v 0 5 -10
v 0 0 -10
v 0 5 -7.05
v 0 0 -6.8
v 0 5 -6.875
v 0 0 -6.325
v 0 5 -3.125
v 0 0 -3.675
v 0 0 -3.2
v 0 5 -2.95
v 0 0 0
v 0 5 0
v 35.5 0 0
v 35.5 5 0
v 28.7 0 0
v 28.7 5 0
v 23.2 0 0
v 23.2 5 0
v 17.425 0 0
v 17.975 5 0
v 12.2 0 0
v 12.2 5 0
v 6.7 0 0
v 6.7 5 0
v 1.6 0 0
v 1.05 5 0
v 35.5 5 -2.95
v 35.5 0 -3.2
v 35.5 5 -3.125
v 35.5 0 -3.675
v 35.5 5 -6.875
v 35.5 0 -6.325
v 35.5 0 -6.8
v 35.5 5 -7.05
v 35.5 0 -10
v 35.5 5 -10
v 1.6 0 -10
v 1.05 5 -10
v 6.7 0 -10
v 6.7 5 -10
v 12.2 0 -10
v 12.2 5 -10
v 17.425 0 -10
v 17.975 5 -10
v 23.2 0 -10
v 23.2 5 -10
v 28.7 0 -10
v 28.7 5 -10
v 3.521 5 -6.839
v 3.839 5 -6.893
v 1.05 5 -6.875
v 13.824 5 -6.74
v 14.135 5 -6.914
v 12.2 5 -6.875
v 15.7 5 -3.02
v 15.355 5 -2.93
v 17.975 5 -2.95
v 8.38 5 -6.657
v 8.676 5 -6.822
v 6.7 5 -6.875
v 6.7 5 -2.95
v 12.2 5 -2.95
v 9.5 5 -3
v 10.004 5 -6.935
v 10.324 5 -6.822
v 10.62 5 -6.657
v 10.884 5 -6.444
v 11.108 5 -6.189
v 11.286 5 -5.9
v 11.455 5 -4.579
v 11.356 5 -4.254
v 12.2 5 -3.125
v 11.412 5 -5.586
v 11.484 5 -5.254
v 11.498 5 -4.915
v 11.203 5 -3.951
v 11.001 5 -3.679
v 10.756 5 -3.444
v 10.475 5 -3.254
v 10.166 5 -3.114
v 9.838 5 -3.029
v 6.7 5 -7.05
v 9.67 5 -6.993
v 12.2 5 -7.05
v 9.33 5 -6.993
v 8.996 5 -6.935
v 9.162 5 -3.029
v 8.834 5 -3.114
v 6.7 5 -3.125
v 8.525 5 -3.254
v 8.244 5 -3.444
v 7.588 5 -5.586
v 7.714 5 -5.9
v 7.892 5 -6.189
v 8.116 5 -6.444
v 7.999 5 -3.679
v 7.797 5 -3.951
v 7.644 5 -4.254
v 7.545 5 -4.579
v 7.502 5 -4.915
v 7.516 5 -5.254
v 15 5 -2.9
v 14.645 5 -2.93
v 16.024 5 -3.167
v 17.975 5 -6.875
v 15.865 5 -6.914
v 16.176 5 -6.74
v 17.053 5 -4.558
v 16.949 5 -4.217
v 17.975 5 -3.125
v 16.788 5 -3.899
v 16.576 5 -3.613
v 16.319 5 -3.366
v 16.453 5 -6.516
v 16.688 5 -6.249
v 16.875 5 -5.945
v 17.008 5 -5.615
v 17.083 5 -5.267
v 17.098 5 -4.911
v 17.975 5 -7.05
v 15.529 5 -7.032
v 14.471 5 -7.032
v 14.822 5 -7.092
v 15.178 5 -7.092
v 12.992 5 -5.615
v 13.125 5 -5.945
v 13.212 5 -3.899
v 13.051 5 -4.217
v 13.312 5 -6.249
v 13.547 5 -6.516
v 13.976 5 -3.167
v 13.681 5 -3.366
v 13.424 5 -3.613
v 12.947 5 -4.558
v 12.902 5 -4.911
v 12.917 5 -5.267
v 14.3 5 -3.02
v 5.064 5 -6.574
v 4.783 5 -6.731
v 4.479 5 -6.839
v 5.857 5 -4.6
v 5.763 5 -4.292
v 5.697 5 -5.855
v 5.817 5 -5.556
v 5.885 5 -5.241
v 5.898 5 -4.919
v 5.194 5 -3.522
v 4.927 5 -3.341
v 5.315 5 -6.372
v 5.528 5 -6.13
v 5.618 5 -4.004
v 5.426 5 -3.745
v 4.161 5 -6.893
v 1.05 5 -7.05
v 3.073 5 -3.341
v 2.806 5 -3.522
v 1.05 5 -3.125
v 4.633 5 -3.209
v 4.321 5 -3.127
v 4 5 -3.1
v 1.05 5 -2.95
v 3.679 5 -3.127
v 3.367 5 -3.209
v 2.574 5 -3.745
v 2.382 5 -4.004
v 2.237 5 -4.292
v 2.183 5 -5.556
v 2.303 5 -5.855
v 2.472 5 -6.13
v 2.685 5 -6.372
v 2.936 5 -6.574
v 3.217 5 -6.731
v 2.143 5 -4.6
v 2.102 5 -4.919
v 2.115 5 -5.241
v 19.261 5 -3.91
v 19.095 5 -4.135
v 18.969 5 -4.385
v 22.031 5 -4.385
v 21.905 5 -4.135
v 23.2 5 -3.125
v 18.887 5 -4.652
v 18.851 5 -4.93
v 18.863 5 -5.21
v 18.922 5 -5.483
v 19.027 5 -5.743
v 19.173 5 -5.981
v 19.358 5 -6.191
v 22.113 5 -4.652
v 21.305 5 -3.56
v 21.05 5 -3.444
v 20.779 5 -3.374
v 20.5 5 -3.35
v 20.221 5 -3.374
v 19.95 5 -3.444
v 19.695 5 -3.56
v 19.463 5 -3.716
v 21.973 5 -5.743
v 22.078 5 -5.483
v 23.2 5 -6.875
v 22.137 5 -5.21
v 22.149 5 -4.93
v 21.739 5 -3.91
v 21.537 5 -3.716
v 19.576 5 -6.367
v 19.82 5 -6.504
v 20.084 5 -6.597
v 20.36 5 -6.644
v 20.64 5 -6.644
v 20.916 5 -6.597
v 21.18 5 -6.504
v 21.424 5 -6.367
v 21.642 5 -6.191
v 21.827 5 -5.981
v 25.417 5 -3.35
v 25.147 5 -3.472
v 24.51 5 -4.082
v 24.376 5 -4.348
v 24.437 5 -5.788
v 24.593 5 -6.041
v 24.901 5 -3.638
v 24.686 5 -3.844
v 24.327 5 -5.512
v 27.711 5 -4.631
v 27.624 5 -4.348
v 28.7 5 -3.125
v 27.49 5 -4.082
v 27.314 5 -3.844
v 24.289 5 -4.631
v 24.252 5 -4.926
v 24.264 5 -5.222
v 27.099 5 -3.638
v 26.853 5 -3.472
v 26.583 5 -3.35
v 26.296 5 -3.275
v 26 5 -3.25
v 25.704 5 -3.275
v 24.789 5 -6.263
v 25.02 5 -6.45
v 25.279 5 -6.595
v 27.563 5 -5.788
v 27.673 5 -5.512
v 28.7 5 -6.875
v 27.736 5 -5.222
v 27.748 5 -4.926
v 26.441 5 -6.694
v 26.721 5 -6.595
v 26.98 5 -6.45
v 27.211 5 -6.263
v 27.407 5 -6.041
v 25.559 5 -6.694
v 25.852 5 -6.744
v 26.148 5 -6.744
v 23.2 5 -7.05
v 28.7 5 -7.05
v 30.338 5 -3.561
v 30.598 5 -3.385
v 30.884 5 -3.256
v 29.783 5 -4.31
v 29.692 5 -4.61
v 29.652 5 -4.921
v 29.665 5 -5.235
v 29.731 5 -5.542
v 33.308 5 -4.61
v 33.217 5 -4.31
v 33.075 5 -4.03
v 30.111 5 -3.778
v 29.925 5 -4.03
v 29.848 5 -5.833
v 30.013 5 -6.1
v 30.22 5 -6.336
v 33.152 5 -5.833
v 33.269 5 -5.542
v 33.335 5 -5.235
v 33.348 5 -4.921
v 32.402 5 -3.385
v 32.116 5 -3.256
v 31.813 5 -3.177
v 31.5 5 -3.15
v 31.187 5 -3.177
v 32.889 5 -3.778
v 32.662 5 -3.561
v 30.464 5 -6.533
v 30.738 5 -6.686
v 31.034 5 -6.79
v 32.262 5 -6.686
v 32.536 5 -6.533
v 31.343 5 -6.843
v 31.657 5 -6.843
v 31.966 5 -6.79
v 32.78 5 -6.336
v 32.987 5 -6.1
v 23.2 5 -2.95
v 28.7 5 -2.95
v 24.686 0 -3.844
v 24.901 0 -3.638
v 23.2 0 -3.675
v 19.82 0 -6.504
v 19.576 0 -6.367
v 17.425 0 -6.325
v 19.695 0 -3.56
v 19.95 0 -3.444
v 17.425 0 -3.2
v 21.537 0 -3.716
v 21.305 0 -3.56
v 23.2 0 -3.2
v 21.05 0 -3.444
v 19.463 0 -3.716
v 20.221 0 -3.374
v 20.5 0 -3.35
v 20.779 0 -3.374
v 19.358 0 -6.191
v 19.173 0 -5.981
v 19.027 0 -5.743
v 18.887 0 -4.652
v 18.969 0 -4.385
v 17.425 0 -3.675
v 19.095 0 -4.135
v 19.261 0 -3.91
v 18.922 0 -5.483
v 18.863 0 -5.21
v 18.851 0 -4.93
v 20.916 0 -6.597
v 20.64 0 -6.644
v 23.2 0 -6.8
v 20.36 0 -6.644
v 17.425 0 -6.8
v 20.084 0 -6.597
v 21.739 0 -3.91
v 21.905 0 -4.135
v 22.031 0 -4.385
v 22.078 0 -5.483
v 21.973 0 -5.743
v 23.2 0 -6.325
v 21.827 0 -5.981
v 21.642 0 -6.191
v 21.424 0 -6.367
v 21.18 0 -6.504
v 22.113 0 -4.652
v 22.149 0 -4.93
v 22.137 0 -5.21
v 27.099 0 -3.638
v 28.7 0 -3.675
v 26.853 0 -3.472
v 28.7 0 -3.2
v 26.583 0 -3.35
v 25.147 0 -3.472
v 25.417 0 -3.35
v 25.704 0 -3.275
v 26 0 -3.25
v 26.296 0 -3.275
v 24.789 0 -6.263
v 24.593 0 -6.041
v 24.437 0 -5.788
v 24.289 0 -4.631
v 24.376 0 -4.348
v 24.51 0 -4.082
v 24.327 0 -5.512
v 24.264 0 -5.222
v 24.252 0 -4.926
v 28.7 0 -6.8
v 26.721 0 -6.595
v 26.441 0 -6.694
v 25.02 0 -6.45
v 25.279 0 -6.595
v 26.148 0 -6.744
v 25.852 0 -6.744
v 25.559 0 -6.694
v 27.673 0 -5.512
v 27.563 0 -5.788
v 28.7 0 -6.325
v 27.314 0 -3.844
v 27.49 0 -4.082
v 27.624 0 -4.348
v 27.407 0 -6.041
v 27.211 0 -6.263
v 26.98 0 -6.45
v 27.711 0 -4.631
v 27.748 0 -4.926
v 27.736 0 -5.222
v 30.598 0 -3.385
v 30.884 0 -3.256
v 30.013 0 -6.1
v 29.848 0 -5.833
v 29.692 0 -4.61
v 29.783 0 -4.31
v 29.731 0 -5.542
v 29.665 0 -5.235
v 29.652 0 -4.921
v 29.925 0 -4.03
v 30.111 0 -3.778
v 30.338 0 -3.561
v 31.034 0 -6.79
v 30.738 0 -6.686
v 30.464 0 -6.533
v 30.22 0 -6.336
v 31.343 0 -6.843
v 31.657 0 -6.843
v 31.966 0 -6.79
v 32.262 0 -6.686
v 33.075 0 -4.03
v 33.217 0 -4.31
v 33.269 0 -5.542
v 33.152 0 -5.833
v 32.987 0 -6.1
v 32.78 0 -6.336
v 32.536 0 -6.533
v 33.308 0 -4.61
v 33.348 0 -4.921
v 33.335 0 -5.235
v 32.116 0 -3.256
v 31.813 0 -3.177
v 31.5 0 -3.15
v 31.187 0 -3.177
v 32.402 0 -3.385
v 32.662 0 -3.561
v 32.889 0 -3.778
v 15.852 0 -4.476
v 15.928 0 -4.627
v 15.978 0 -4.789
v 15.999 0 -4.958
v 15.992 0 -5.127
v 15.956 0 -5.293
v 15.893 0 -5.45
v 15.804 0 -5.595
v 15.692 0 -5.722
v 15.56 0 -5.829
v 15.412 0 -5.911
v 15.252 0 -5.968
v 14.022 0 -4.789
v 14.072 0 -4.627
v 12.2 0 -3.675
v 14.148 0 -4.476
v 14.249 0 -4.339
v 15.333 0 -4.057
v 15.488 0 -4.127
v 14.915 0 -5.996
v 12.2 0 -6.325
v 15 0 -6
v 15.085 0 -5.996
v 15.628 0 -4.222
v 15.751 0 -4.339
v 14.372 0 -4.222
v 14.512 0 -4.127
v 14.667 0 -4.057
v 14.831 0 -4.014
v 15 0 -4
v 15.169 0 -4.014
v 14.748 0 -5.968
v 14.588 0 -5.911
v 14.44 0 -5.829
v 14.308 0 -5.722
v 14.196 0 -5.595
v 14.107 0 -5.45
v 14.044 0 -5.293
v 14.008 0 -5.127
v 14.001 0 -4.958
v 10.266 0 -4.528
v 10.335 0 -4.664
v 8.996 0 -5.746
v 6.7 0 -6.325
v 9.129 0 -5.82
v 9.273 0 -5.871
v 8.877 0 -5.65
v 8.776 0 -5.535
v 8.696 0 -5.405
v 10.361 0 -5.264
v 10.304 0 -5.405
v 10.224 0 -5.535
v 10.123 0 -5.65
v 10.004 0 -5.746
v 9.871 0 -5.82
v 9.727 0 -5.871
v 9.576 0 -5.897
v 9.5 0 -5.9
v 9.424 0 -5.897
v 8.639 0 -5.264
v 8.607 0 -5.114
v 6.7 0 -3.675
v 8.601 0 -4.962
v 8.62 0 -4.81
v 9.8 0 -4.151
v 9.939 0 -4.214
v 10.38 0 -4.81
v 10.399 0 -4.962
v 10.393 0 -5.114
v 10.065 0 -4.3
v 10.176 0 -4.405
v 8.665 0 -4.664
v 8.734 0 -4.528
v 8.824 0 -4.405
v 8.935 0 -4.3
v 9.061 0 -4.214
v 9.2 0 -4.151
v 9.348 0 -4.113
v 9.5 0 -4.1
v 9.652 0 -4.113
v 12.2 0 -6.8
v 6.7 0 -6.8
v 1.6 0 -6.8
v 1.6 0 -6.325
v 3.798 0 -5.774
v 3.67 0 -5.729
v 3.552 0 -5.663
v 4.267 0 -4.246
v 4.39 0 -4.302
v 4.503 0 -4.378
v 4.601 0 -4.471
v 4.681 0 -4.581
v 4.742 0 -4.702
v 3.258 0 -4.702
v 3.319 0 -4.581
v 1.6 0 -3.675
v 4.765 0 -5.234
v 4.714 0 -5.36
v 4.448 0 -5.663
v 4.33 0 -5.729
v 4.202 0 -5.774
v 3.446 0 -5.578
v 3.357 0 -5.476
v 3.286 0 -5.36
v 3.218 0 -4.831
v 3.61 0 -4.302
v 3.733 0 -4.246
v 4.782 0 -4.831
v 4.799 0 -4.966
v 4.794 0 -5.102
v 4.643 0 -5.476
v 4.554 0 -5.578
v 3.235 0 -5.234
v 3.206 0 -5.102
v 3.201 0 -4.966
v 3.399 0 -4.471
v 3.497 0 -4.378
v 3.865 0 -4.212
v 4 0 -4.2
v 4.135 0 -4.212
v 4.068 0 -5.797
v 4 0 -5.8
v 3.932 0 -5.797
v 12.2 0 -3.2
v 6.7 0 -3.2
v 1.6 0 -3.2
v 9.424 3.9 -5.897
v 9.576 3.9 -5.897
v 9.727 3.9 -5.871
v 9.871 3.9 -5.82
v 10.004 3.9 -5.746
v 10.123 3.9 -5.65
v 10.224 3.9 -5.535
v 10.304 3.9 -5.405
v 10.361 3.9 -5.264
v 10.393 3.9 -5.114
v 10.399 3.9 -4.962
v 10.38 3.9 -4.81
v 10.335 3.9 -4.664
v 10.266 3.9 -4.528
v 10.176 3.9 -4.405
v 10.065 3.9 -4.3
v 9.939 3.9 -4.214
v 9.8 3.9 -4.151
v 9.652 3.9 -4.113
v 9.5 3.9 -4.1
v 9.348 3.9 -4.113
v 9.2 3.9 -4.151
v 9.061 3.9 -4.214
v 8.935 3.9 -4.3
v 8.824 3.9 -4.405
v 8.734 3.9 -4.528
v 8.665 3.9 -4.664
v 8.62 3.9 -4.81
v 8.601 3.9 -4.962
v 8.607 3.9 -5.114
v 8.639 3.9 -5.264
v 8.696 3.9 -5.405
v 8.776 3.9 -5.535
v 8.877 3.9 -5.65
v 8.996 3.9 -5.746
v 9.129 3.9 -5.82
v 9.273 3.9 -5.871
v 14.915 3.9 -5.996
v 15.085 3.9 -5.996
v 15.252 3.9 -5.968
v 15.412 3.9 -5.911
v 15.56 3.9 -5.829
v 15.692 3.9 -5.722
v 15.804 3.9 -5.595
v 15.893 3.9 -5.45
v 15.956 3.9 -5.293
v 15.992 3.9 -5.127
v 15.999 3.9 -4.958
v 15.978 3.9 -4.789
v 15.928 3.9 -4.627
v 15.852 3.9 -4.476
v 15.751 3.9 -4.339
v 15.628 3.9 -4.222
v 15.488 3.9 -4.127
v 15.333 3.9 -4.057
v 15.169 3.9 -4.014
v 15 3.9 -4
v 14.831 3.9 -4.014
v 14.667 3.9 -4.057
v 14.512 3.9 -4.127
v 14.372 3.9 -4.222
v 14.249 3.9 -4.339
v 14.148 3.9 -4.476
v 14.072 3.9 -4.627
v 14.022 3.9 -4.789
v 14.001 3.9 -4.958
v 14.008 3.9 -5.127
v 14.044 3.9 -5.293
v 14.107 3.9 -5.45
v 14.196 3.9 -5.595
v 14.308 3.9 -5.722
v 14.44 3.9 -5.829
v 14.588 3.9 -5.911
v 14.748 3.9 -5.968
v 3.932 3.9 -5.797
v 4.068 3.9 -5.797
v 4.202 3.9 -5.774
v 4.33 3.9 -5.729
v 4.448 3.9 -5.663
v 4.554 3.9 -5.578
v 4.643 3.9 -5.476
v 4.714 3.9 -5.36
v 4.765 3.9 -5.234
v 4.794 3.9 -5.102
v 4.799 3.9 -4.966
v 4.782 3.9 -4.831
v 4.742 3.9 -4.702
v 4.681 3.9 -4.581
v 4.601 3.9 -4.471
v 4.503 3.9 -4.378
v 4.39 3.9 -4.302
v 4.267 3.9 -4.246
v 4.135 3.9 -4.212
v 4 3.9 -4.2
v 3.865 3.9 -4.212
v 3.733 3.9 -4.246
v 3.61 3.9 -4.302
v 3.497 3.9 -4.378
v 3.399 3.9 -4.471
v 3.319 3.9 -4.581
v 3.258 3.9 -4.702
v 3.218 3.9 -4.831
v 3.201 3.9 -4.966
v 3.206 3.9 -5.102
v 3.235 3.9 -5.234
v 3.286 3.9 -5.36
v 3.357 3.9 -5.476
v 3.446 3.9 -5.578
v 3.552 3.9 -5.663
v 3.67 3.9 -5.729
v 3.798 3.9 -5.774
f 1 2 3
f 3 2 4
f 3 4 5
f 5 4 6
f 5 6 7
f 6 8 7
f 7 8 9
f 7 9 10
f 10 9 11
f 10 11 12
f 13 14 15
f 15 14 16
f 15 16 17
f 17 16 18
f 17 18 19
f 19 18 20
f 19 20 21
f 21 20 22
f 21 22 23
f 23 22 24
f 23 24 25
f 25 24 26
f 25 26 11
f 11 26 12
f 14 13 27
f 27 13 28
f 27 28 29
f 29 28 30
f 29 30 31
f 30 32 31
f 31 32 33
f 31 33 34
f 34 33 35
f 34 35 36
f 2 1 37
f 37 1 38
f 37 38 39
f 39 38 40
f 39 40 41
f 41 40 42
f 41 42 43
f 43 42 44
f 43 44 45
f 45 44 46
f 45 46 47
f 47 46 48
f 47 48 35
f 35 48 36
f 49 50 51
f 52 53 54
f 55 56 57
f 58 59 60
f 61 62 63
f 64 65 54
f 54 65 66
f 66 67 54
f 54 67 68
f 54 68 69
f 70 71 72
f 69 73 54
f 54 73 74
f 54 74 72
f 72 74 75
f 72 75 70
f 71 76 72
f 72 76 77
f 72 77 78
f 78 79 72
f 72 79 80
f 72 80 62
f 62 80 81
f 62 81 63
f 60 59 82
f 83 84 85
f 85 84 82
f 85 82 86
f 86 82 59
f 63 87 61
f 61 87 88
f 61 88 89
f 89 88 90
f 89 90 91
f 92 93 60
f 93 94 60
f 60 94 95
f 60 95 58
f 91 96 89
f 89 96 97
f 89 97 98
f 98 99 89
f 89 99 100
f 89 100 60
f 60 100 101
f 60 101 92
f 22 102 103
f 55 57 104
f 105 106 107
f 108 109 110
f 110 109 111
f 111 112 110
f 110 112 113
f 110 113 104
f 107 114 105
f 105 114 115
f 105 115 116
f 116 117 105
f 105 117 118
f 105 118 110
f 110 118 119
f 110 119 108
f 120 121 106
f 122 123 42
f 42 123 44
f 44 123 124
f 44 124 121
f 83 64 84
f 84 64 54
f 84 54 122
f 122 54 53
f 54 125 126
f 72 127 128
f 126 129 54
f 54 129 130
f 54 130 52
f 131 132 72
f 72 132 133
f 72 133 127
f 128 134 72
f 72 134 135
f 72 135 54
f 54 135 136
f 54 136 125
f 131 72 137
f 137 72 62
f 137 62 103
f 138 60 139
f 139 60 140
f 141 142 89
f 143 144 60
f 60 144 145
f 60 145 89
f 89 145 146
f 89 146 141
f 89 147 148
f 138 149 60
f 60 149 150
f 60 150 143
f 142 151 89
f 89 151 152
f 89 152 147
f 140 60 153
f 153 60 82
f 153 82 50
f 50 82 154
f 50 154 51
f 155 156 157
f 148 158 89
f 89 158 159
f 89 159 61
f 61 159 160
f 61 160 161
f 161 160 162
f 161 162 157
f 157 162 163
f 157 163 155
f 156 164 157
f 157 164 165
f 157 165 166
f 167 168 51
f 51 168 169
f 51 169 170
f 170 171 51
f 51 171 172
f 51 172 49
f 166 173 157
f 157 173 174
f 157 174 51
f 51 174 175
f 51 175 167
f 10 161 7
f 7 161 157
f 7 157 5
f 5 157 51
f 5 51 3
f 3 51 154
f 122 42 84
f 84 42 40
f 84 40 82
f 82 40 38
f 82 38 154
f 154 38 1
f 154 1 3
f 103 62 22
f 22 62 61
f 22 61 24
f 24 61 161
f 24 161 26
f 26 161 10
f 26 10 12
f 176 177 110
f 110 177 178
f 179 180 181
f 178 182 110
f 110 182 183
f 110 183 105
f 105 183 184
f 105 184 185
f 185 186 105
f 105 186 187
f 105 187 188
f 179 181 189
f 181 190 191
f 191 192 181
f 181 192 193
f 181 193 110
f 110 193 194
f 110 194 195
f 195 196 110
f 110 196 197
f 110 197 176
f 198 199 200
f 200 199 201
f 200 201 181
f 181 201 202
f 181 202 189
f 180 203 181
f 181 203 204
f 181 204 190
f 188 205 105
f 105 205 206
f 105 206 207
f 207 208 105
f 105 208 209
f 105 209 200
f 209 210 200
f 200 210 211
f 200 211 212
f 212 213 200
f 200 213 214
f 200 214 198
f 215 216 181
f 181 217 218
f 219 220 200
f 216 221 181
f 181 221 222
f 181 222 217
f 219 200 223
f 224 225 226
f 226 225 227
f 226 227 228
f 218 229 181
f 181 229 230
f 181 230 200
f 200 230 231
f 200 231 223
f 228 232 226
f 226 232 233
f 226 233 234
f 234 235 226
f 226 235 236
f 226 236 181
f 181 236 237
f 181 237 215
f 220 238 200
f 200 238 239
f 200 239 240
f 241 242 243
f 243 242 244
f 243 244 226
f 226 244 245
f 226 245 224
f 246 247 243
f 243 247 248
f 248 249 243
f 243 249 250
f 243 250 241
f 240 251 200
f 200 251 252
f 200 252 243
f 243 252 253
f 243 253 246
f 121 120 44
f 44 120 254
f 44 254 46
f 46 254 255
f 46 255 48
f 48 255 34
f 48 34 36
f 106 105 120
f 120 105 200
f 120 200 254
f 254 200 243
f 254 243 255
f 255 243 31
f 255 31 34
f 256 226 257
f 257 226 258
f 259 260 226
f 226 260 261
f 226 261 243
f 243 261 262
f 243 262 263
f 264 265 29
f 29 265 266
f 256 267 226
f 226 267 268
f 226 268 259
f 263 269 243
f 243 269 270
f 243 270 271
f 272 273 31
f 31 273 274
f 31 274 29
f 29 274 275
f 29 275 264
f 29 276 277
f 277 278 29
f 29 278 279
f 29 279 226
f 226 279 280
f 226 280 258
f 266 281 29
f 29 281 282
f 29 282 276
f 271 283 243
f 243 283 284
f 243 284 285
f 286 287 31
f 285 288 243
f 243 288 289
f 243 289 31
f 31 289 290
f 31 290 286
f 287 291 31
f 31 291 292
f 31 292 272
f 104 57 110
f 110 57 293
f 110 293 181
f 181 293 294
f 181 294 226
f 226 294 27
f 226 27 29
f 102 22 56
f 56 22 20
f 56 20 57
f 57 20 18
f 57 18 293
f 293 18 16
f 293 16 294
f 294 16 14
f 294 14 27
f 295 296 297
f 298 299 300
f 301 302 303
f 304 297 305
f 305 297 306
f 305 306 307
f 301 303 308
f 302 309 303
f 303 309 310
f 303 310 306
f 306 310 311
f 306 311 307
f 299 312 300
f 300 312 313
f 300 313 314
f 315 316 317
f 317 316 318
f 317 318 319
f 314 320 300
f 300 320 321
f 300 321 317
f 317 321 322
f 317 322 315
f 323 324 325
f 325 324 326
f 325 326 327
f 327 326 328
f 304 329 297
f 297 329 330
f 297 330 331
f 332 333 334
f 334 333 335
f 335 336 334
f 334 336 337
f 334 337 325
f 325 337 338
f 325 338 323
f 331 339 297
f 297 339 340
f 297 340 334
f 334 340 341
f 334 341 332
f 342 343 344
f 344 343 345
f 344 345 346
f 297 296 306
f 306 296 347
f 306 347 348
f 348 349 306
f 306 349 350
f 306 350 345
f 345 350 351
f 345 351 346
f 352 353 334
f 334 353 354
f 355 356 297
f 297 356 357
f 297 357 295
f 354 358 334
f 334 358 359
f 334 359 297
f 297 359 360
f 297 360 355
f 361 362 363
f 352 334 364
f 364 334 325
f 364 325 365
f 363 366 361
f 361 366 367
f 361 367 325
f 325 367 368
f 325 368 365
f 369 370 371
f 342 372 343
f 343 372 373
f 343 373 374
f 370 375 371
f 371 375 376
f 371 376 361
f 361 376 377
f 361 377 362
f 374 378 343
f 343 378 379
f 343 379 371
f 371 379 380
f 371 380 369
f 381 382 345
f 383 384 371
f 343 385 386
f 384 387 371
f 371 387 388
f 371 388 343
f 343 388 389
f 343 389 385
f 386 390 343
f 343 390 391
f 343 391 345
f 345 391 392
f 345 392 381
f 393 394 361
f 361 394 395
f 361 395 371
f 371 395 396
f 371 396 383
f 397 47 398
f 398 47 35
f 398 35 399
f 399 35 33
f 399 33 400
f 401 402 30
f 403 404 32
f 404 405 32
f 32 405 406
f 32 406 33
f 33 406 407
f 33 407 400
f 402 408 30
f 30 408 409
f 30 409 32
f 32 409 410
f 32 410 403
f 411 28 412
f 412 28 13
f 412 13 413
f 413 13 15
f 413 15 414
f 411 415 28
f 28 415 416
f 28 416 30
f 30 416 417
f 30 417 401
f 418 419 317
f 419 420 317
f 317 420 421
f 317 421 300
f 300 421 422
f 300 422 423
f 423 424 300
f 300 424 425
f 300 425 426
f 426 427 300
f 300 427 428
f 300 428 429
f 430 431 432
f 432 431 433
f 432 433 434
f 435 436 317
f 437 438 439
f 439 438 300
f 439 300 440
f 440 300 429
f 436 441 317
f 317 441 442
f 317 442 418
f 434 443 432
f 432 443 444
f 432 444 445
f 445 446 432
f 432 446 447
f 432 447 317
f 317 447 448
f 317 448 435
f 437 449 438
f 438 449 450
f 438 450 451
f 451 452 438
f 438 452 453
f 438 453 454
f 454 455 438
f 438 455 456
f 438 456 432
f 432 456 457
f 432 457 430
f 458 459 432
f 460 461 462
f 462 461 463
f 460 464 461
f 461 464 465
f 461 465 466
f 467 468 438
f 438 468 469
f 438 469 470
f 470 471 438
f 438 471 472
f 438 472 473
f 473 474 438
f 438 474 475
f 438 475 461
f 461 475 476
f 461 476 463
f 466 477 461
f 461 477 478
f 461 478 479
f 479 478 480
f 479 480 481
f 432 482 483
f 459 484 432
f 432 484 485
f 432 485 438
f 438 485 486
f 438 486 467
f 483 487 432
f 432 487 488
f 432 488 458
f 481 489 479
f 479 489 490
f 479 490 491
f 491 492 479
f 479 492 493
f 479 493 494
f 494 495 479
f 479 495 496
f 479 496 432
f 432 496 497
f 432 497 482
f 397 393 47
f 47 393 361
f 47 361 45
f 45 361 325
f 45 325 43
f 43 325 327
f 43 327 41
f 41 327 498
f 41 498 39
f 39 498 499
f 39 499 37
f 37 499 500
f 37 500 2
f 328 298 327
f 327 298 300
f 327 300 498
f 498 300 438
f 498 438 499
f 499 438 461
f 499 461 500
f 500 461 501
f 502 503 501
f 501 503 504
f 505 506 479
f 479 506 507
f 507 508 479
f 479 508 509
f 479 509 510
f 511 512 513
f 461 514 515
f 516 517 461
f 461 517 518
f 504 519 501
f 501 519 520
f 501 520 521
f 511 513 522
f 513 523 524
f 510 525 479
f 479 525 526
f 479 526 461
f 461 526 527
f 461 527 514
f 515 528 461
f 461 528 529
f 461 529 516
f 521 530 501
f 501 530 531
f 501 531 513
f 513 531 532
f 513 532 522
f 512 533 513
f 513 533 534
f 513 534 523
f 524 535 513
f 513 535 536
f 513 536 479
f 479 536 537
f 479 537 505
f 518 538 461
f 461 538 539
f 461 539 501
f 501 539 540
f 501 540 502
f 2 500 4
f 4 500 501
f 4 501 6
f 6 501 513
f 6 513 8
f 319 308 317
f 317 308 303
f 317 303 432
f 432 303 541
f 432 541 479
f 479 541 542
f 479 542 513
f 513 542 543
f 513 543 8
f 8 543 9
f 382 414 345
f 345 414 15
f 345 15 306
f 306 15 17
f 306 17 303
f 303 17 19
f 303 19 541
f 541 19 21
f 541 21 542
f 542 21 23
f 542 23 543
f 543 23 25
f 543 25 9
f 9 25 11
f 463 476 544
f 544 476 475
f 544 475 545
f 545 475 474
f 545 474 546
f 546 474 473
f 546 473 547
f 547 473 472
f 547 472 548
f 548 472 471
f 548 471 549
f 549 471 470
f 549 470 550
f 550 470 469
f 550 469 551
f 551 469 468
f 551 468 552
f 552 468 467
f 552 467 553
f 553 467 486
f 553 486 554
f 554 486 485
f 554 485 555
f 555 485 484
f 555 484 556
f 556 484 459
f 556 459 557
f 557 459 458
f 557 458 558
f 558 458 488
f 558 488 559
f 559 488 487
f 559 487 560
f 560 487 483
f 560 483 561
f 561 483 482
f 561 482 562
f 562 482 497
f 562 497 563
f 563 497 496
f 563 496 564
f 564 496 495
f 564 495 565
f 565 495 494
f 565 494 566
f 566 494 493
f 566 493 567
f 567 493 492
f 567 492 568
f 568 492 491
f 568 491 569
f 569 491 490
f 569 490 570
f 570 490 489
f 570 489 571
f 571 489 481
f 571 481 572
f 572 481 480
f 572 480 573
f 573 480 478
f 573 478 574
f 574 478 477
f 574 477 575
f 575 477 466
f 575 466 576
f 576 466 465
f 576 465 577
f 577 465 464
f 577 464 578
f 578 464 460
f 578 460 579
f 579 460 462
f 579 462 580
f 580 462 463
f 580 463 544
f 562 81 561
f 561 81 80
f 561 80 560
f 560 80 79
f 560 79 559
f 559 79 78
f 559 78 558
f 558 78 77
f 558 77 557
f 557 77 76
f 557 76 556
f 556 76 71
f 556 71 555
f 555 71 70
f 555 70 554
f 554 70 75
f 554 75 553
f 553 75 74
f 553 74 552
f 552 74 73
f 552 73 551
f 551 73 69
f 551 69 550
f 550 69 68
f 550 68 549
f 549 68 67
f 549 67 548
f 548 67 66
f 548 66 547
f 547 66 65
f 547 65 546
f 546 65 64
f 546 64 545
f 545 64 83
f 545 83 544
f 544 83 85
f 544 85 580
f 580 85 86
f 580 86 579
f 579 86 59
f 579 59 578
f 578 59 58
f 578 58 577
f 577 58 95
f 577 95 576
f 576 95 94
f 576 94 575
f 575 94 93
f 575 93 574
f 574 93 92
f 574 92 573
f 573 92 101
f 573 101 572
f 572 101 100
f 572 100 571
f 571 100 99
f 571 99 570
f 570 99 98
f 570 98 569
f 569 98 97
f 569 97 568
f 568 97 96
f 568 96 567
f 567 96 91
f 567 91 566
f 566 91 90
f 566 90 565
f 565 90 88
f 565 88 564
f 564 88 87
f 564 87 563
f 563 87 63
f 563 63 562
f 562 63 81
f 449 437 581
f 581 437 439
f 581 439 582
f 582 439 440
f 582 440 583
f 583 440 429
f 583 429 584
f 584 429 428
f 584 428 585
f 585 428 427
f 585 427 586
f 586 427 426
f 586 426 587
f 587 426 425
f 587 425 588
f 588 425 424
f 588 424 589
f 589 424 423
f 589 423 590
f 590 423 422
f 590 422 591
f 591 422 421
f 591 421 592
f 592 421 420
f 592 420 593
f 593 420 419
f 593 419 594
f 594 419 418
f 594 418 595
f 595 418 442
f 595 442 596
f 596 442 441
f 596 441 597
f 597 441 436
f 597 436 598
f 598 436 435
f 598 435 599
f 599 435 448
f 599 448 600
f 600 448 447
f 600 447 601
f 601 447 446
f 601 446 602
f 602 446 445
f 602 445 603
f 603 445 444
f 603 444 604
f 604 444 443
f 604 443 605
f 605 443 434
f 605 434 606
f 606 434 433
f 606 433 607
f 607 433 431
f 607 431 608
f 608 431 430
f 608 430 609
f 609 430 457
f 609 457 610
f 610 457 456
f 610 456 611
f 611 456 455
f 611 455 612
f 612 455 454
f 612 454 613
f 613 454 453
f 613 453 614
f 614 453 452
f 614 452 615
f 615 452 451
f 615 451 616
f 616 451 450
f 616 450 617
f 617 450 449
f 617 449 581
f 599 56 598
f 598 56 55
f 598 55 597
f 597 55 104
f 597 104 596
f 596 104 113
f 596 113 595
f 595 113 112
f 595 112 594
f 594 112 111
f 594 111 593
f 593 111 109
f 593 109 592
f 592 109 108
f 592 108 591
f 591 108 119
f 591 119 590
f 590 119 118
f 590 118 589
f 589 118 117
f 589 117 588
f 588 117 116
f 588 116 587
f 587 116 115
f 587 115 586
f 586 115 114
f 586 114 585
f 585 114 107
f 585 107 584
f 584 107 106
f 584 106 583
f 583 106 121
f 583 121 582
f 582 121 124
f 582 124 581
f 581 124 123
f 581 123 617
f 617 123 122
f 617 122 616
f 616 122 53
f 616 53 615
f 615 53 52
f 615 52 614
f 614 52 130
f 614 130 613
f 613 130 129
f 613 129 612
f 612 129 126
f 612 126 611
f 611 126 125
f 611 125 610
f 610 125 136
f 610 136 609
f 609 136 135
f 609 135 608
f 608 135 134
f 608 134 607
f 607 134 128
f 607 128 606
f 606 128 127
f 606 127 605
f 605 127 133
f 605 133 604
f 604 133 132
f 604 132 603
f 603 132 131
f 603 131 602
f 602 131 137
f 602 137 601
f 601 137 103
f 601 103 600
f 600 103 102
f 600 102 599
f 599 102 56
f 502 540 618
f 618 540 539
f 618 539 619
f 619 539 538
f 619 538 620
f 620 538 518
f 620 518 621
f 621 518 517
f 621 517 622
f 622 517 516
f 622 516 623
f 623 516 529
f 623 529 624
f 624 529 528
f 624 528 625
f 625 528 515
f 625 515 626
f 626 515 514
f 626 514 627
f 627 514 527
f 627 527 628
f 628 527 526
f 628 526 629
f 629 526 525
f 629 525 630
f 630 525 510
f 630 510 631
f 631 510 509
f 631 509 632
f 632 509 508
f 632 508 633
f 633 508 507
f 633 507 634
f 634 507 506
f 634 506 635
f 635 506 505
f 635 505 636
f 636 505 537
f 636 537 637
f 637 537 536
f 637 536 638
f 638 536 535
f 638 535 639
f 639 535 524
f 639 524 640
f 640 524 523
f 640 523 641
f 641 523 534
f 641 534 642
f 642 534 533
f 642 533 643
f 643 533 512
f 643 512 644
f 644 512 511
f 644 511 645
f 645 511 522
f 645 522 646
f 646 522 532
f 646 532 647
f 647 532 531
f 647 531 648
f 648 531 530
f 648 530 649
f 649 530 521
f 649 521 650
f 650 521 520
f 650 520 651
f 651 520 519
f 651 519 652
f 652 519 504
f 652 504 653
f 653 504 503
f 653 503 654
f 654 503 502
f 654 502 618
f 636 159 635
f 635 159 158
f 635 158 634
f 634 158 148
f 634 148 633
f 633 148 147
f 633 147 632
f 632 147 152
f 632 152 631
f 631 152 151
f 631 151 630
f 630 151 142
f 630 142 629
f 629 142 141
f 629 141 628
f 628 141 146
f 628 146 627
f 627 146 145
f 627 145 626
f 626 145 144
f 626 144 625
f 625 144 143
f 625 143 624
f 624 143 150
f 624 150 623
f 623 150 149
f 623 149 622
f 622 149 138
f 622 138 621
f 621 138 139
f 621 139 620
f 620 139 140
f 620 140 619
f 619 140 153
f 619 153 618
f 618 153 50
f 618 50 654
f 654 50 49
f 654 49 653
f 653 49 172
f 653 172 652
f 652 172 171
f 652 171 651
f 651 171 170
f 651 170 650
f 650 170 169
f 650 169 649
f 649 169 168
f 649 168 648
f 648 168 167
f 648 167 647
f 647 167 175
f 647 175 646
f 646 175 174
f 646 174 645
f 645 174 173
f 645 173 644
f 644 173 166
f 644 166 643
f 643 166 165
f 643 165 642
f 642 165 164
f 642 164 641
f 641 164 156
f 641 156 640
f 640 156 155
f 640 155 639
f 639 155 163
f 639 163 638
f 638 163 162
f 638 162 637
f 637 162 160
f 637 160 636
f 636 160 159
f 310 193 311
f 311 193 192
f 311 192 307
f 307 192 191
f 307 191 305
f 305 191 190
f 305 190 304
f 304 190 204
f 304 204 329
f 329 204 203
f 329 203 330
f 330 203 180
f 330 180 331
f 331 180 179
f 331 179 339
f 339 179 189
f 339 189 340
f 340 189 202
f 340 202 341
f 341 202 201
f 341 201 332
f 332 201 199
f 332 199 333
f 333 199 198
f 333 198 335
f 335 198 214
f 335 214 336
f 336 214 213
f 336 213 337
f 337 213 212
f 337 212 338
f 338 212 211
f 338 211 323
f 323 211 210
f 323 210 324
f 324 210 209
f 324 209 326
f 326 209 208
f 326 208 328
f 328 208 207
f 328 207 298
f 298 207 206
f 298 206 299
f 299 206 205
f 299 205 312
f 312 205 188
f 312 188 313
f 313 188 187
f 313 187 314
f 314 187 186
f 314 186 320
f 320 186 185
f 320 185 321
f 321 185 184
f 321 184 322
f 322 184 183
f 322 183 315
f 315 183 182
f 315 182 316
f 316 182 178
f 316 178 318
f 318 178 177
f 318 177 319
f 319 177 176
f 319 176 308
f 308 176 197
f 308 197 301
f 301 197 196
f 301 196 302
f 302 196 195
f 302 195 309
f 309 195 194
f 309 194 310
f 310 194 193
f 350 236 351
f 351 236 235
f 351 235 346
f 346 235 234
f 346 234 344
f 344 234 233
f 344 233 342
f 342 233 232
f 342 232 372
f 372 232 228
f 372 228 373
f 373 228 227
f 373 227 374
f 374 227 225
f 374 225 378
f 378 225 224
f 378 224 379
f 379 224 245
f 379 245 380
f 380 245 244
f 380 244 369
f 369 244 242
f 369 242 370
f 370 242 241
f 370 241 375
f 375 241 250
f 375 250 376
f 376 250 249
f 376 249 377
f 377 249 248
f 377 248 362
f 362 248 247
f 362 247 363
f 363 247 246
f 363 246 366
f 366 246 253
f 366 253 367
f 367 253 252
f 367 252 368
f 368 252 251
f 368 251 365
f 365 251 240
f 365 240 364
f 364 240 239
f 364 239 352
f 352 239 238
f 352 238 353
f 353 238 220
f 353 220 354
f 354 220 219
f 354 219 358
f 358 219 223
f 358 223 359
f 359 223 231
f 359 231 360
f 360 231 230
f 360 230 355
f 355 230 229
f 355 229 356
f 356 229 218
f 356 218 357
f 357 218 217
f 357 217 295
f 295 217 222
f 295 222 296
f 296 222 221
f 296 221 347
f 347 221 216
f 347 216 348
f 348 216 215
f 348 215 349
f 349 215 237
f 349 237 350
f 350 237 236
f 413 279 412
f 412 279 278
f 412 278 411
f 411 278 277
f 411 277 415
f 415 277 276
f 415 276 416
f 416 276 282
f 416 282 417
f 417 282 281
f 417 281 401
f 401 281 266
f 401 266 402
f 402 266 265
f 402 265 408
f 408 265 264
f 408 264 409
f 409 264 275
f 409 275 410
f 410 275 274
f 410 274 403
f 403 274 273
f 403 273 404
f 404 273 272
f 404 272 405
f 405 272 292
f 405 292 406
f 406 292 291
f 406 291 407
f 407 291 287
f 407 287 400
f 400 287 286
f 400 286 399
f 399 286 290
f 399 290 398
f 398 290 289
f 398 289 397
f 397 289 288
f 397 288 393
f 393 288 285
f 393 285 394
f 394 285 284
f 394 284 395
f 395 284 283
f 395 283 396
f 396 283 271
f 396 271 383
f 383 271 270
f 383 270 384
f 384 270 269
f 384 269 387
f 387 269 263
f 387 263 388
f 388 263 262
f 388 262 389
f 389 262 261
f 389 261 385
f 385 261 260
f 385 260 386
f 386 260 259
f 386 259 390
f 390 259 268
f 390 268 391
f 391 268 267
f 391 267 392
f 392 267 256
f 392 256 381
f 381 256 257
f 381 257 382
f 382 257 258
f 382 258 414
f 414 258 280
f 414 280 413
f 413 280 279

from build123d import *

# Parameters (mm, degrees)
SKETCH1_W                             = 35.5
SKETCH1_H                             = 10
BOSS_EXTRUDE1_DEPTH                   = 5
TAP_DRILL_FOR_M2X0_4_TAP1_D           = 1.8
TAP_DRILL_FOR_M2X0_4_TAP1_DEPTH       = 7
TAP_DRILL_FOR_M2X0_4_TAP1_CSINK_D     = 4
TAP_DRILL_FOR_M2X0_4_TAP1_CSINK_ANGLE = 90
TAP_DRILL_FOR_M2X0_4_TAP1_TIP         = 0.540774557
TAP_DRILL_FOR_M2X0_4_TAP2_D           = 2
TAP_DRILL_FOR_M2X0_4_TAP2_DEPTH       = 7
TAP_DRILL_FOR_M2X0_4_TAP2_CSINK_D     = 4.2
TAP_DRILL_FOR_M2X0_4_TAP2_CSINK_ANGLE = 90
TAP_DRILL_FOR_M2X0_4_TAP2_TIP         = 0.600860619
TAP_DRILL_FOR_M2X0_4_TAP3_D           = 1.6
TAP_DRILL_FOR_M2X0_4_TAP3_DEPTH       = 7
TAP_DRILL_FOR_M2X0_4_TAP3_CSINK_D     = 3.8
TAP_DRILL_FOR_M2X0_4_TAP3_CSINK_ANGLE = 90
TAP_DRILL_FOR_M2X0_4_TAP3_TIP         = 0.480688495
TAP_DRILL_FOR_M4X0_7_TAP1_D           = 3.3
TAP_DRILL_FOR_M4X0_7_TAP1_DEPTH       = 5
TAP_DRILL_FOR_M4X0_7_TAP1_TIP         = 0.991420021
TAP_DRILL_FOR_M4X0_7_TAP2_D           = 3.5
TAP_DRILL_FOR_M4X0_7_TAP2_DEPTH       = 5
TAP_DRILL_FOR_M4X0_7_TAP2_TIP         = 1.051506083
TAP_DRILL_FOR_M4X0_7_TAP3_D           = 3.7
TAP_DRILL_FOR_M4X0_7_TAP3_DEPTH       = 5
TAP_DRILL_FOR_M4X0_7_TAP3_TIP         = 1.111592145


with BuildPart() as part:
    # Sketch1 → Boss-Extrude1 (new body)
    with BuildSketch(Plane(origin=(0, 0, 0), x_dir=(1, 0, 0), z_dir=(0, 1, 0))):
        with Locations((17.75, 5)):
            Rectangle(SKETCH1_W, SKETCH1_H)
    extrude(amount=BOSS_EXTRUDE1_DEPTH)

    # Tap Drill for M2x0.4 Tap1
    with Locations(Plane(origin=(9.5, 5, -5), x_dir=(0, 0, 1), z_dir=(0, 1, 0))):
        with Locations((0, 0)):
            CounterSinkHole(TAP_DRILL_FOR_M2X0_4_TAP1_D / 2, TAP_DRILL_FOR_M2X0_4_TAP1_CSINK_D / 2, depth=TAP_DRILL_FOR_M2X0_4_TAP1_DEPTH, counter_sink_angle=TAP_DRILL_FOR_M2X0_4_TAP1_CSINK_ANGLE)
            with Locations((0, 0, -(TAP_DRILL_FOR_M2X0_4_TAP1_DEPTH + TAP_DRILL_FOR_M2X0_4_TAP1_TIP / 2))):  # 118° drill point
                Cone(0, TAP_DRILL_FOR_M2X0_4_TAP1_D / 2, TAP_DRILL_FOR_M2X0_4_TAP1_TIP, mode=Mode.SUBTRACT)

    # Tap Drill for M2x0.4 Tap2
    with Locations(Plane(origin=(15, 5, -5), x_dir=(0, 0, 1), z_dir=(0, 1, 0))):
        with Locations((0, 0)):
            CounterSinkHole(TAP_DRILL_FOR_M2X0_4_TAP2_D / 2, TAP_DRILL_FOR_M2X0_4_TAP2_CSINK_D / 2, depth=TAP_DRILL_FOR_M2X0_4_TAP2_DEPTH, counter_sink_angle=TAP_DRILL_FOR_M2X0_4_TAP2_CSINK_ANGLE)
            with Locations((0, 0, -(TAP_DRILL_FOR_M2X0_4_TAP2_DEPTH + TAP_DRILL_FOR_M2X0_4_TAP2_TIP / 2))):  # 118° drill point
                Cone(0, TAP_DRILL_FOR_M2X0_4_TAP2_D / 2, TAP_DRILL_FOR_M2X0_4_TAP2_TIP, mode=Mode.SUBTRACT)

    # Tap Drill for M2x0.4 Tap3
    with Locations(Plane(origin=(4, 5, -5), x_dir=(0, 0, 1), z_dir=(0, 1, 0))):
        with Locations((0, 0)):
            CounterSinkHole(TAP_DRILL_FOR_M2X0_4_TAP3_D / 2, TAP_DRILL_FOR_M2X0_4_TAP3_CSINK_D / 2, depth=TAP_DRILL_FOR_M2X0_4_TAP3_DEPTH, counter_sink_angle=TAP_DRILL_FOR_M2X0_4_TAP3_CSINK_ANGLE)
            with Locations((0, 0, -(TAP_DRILL_FOR_M2X0_4_TAP3_DEPTH + TAP_DRILL_FOR_M2X0_4_TAP3_TIP / 2))):  # 118° drill point
                Cone(0, TAP_DRILL_FOR_M2X0_4_TAP3_D / 2, TAP_DRILL_FOR_M2X0_4_TAP3_TIP, mode=Mode.SUBTRACT)

    # Tap Drill for M4x0.7 Tap1
    with Locations(Plane(origin=(20.5, 5, -5), x_dir=(0, 0, 1), z_dir=(0, 1, 0))):
        with Locations((0, 0)):
            Hole(TAP_DRILL_FOR_M4X0_7_TAP1_D / 2, depth=TAP_DRILL_FOR_M4X0_7_TAP1_DEPTH)
            with Locations((0, 0, -(TAP_DRILL_FOR_M4X0_7_TAP1_DEPTH + TAP_DRILL_FOR_M4X0_7_TAP1_TIP / 2))):  # 118° drill point
                Cone(0, TAP_DRILL_FOR_M4X0_7_TAP1_D / 2, TAP_DRILL_FOR_M4X0_7_TAP1_TIP, mode=Mode.SUBTRACT)

    # Tap Drill for M4x0.7 Tap2
    with Locations(Plane(origin=(26, 5, -5), x_dir=(0, 0, 1), z_dir=(0, 1, 0))):
        with Locations((0, 0)):
            Hole(TAP_DRILL_FOR_M4X0_7_TAP2_D / 2, depth=TAP_DRILL_FOR_M4X0_7_TAP2_DEPTH)
            with Locations((0, 0, -(TAP_DRILL_FOR_M4X0_7_TAP2_DEPTH + TAP_DRILL_FOR_M4X0_7_TAP2_TIP / 2))):  # 118° drill point
                Cone(0, TAP_DRILL_FOR_M4X0_7_TAP2_D / 2, TAP_DRILL_FOR_M4X0_7_TAP2_TIP, mode=Mode.SUBTRACT)

    # Tap Drill for M4x0.7 Tap3
    with Locations(Plane(origin=(31.5, 5, -5), x_dir=(0, 0, 1), z_dir=(0, 1, 0))):
        with Locations((0, 0)):
            Hole(TAP_DRILL_FOR_M4X0_7_TAP3_D / 2, depth=TAP_DRILL_FOR_M4X0_7_TAP3_DEPTH)
            with Locations((0, 0, -(TAP_DRILL_FOR_M4X0_7_TAP3_DEPTH + TAP_DRILL_FOR_M4X0_7_TAP3_TIP / 2))):  # 118° drill point
                Cone(0, TAP_DRILL_FOR_M4X0_7_TAP3_D / 2, TAP_DRILL_FOR_M4X0_7_TAP3_TIP, mode=Mode.SUBTRACT)


solid = part.part
